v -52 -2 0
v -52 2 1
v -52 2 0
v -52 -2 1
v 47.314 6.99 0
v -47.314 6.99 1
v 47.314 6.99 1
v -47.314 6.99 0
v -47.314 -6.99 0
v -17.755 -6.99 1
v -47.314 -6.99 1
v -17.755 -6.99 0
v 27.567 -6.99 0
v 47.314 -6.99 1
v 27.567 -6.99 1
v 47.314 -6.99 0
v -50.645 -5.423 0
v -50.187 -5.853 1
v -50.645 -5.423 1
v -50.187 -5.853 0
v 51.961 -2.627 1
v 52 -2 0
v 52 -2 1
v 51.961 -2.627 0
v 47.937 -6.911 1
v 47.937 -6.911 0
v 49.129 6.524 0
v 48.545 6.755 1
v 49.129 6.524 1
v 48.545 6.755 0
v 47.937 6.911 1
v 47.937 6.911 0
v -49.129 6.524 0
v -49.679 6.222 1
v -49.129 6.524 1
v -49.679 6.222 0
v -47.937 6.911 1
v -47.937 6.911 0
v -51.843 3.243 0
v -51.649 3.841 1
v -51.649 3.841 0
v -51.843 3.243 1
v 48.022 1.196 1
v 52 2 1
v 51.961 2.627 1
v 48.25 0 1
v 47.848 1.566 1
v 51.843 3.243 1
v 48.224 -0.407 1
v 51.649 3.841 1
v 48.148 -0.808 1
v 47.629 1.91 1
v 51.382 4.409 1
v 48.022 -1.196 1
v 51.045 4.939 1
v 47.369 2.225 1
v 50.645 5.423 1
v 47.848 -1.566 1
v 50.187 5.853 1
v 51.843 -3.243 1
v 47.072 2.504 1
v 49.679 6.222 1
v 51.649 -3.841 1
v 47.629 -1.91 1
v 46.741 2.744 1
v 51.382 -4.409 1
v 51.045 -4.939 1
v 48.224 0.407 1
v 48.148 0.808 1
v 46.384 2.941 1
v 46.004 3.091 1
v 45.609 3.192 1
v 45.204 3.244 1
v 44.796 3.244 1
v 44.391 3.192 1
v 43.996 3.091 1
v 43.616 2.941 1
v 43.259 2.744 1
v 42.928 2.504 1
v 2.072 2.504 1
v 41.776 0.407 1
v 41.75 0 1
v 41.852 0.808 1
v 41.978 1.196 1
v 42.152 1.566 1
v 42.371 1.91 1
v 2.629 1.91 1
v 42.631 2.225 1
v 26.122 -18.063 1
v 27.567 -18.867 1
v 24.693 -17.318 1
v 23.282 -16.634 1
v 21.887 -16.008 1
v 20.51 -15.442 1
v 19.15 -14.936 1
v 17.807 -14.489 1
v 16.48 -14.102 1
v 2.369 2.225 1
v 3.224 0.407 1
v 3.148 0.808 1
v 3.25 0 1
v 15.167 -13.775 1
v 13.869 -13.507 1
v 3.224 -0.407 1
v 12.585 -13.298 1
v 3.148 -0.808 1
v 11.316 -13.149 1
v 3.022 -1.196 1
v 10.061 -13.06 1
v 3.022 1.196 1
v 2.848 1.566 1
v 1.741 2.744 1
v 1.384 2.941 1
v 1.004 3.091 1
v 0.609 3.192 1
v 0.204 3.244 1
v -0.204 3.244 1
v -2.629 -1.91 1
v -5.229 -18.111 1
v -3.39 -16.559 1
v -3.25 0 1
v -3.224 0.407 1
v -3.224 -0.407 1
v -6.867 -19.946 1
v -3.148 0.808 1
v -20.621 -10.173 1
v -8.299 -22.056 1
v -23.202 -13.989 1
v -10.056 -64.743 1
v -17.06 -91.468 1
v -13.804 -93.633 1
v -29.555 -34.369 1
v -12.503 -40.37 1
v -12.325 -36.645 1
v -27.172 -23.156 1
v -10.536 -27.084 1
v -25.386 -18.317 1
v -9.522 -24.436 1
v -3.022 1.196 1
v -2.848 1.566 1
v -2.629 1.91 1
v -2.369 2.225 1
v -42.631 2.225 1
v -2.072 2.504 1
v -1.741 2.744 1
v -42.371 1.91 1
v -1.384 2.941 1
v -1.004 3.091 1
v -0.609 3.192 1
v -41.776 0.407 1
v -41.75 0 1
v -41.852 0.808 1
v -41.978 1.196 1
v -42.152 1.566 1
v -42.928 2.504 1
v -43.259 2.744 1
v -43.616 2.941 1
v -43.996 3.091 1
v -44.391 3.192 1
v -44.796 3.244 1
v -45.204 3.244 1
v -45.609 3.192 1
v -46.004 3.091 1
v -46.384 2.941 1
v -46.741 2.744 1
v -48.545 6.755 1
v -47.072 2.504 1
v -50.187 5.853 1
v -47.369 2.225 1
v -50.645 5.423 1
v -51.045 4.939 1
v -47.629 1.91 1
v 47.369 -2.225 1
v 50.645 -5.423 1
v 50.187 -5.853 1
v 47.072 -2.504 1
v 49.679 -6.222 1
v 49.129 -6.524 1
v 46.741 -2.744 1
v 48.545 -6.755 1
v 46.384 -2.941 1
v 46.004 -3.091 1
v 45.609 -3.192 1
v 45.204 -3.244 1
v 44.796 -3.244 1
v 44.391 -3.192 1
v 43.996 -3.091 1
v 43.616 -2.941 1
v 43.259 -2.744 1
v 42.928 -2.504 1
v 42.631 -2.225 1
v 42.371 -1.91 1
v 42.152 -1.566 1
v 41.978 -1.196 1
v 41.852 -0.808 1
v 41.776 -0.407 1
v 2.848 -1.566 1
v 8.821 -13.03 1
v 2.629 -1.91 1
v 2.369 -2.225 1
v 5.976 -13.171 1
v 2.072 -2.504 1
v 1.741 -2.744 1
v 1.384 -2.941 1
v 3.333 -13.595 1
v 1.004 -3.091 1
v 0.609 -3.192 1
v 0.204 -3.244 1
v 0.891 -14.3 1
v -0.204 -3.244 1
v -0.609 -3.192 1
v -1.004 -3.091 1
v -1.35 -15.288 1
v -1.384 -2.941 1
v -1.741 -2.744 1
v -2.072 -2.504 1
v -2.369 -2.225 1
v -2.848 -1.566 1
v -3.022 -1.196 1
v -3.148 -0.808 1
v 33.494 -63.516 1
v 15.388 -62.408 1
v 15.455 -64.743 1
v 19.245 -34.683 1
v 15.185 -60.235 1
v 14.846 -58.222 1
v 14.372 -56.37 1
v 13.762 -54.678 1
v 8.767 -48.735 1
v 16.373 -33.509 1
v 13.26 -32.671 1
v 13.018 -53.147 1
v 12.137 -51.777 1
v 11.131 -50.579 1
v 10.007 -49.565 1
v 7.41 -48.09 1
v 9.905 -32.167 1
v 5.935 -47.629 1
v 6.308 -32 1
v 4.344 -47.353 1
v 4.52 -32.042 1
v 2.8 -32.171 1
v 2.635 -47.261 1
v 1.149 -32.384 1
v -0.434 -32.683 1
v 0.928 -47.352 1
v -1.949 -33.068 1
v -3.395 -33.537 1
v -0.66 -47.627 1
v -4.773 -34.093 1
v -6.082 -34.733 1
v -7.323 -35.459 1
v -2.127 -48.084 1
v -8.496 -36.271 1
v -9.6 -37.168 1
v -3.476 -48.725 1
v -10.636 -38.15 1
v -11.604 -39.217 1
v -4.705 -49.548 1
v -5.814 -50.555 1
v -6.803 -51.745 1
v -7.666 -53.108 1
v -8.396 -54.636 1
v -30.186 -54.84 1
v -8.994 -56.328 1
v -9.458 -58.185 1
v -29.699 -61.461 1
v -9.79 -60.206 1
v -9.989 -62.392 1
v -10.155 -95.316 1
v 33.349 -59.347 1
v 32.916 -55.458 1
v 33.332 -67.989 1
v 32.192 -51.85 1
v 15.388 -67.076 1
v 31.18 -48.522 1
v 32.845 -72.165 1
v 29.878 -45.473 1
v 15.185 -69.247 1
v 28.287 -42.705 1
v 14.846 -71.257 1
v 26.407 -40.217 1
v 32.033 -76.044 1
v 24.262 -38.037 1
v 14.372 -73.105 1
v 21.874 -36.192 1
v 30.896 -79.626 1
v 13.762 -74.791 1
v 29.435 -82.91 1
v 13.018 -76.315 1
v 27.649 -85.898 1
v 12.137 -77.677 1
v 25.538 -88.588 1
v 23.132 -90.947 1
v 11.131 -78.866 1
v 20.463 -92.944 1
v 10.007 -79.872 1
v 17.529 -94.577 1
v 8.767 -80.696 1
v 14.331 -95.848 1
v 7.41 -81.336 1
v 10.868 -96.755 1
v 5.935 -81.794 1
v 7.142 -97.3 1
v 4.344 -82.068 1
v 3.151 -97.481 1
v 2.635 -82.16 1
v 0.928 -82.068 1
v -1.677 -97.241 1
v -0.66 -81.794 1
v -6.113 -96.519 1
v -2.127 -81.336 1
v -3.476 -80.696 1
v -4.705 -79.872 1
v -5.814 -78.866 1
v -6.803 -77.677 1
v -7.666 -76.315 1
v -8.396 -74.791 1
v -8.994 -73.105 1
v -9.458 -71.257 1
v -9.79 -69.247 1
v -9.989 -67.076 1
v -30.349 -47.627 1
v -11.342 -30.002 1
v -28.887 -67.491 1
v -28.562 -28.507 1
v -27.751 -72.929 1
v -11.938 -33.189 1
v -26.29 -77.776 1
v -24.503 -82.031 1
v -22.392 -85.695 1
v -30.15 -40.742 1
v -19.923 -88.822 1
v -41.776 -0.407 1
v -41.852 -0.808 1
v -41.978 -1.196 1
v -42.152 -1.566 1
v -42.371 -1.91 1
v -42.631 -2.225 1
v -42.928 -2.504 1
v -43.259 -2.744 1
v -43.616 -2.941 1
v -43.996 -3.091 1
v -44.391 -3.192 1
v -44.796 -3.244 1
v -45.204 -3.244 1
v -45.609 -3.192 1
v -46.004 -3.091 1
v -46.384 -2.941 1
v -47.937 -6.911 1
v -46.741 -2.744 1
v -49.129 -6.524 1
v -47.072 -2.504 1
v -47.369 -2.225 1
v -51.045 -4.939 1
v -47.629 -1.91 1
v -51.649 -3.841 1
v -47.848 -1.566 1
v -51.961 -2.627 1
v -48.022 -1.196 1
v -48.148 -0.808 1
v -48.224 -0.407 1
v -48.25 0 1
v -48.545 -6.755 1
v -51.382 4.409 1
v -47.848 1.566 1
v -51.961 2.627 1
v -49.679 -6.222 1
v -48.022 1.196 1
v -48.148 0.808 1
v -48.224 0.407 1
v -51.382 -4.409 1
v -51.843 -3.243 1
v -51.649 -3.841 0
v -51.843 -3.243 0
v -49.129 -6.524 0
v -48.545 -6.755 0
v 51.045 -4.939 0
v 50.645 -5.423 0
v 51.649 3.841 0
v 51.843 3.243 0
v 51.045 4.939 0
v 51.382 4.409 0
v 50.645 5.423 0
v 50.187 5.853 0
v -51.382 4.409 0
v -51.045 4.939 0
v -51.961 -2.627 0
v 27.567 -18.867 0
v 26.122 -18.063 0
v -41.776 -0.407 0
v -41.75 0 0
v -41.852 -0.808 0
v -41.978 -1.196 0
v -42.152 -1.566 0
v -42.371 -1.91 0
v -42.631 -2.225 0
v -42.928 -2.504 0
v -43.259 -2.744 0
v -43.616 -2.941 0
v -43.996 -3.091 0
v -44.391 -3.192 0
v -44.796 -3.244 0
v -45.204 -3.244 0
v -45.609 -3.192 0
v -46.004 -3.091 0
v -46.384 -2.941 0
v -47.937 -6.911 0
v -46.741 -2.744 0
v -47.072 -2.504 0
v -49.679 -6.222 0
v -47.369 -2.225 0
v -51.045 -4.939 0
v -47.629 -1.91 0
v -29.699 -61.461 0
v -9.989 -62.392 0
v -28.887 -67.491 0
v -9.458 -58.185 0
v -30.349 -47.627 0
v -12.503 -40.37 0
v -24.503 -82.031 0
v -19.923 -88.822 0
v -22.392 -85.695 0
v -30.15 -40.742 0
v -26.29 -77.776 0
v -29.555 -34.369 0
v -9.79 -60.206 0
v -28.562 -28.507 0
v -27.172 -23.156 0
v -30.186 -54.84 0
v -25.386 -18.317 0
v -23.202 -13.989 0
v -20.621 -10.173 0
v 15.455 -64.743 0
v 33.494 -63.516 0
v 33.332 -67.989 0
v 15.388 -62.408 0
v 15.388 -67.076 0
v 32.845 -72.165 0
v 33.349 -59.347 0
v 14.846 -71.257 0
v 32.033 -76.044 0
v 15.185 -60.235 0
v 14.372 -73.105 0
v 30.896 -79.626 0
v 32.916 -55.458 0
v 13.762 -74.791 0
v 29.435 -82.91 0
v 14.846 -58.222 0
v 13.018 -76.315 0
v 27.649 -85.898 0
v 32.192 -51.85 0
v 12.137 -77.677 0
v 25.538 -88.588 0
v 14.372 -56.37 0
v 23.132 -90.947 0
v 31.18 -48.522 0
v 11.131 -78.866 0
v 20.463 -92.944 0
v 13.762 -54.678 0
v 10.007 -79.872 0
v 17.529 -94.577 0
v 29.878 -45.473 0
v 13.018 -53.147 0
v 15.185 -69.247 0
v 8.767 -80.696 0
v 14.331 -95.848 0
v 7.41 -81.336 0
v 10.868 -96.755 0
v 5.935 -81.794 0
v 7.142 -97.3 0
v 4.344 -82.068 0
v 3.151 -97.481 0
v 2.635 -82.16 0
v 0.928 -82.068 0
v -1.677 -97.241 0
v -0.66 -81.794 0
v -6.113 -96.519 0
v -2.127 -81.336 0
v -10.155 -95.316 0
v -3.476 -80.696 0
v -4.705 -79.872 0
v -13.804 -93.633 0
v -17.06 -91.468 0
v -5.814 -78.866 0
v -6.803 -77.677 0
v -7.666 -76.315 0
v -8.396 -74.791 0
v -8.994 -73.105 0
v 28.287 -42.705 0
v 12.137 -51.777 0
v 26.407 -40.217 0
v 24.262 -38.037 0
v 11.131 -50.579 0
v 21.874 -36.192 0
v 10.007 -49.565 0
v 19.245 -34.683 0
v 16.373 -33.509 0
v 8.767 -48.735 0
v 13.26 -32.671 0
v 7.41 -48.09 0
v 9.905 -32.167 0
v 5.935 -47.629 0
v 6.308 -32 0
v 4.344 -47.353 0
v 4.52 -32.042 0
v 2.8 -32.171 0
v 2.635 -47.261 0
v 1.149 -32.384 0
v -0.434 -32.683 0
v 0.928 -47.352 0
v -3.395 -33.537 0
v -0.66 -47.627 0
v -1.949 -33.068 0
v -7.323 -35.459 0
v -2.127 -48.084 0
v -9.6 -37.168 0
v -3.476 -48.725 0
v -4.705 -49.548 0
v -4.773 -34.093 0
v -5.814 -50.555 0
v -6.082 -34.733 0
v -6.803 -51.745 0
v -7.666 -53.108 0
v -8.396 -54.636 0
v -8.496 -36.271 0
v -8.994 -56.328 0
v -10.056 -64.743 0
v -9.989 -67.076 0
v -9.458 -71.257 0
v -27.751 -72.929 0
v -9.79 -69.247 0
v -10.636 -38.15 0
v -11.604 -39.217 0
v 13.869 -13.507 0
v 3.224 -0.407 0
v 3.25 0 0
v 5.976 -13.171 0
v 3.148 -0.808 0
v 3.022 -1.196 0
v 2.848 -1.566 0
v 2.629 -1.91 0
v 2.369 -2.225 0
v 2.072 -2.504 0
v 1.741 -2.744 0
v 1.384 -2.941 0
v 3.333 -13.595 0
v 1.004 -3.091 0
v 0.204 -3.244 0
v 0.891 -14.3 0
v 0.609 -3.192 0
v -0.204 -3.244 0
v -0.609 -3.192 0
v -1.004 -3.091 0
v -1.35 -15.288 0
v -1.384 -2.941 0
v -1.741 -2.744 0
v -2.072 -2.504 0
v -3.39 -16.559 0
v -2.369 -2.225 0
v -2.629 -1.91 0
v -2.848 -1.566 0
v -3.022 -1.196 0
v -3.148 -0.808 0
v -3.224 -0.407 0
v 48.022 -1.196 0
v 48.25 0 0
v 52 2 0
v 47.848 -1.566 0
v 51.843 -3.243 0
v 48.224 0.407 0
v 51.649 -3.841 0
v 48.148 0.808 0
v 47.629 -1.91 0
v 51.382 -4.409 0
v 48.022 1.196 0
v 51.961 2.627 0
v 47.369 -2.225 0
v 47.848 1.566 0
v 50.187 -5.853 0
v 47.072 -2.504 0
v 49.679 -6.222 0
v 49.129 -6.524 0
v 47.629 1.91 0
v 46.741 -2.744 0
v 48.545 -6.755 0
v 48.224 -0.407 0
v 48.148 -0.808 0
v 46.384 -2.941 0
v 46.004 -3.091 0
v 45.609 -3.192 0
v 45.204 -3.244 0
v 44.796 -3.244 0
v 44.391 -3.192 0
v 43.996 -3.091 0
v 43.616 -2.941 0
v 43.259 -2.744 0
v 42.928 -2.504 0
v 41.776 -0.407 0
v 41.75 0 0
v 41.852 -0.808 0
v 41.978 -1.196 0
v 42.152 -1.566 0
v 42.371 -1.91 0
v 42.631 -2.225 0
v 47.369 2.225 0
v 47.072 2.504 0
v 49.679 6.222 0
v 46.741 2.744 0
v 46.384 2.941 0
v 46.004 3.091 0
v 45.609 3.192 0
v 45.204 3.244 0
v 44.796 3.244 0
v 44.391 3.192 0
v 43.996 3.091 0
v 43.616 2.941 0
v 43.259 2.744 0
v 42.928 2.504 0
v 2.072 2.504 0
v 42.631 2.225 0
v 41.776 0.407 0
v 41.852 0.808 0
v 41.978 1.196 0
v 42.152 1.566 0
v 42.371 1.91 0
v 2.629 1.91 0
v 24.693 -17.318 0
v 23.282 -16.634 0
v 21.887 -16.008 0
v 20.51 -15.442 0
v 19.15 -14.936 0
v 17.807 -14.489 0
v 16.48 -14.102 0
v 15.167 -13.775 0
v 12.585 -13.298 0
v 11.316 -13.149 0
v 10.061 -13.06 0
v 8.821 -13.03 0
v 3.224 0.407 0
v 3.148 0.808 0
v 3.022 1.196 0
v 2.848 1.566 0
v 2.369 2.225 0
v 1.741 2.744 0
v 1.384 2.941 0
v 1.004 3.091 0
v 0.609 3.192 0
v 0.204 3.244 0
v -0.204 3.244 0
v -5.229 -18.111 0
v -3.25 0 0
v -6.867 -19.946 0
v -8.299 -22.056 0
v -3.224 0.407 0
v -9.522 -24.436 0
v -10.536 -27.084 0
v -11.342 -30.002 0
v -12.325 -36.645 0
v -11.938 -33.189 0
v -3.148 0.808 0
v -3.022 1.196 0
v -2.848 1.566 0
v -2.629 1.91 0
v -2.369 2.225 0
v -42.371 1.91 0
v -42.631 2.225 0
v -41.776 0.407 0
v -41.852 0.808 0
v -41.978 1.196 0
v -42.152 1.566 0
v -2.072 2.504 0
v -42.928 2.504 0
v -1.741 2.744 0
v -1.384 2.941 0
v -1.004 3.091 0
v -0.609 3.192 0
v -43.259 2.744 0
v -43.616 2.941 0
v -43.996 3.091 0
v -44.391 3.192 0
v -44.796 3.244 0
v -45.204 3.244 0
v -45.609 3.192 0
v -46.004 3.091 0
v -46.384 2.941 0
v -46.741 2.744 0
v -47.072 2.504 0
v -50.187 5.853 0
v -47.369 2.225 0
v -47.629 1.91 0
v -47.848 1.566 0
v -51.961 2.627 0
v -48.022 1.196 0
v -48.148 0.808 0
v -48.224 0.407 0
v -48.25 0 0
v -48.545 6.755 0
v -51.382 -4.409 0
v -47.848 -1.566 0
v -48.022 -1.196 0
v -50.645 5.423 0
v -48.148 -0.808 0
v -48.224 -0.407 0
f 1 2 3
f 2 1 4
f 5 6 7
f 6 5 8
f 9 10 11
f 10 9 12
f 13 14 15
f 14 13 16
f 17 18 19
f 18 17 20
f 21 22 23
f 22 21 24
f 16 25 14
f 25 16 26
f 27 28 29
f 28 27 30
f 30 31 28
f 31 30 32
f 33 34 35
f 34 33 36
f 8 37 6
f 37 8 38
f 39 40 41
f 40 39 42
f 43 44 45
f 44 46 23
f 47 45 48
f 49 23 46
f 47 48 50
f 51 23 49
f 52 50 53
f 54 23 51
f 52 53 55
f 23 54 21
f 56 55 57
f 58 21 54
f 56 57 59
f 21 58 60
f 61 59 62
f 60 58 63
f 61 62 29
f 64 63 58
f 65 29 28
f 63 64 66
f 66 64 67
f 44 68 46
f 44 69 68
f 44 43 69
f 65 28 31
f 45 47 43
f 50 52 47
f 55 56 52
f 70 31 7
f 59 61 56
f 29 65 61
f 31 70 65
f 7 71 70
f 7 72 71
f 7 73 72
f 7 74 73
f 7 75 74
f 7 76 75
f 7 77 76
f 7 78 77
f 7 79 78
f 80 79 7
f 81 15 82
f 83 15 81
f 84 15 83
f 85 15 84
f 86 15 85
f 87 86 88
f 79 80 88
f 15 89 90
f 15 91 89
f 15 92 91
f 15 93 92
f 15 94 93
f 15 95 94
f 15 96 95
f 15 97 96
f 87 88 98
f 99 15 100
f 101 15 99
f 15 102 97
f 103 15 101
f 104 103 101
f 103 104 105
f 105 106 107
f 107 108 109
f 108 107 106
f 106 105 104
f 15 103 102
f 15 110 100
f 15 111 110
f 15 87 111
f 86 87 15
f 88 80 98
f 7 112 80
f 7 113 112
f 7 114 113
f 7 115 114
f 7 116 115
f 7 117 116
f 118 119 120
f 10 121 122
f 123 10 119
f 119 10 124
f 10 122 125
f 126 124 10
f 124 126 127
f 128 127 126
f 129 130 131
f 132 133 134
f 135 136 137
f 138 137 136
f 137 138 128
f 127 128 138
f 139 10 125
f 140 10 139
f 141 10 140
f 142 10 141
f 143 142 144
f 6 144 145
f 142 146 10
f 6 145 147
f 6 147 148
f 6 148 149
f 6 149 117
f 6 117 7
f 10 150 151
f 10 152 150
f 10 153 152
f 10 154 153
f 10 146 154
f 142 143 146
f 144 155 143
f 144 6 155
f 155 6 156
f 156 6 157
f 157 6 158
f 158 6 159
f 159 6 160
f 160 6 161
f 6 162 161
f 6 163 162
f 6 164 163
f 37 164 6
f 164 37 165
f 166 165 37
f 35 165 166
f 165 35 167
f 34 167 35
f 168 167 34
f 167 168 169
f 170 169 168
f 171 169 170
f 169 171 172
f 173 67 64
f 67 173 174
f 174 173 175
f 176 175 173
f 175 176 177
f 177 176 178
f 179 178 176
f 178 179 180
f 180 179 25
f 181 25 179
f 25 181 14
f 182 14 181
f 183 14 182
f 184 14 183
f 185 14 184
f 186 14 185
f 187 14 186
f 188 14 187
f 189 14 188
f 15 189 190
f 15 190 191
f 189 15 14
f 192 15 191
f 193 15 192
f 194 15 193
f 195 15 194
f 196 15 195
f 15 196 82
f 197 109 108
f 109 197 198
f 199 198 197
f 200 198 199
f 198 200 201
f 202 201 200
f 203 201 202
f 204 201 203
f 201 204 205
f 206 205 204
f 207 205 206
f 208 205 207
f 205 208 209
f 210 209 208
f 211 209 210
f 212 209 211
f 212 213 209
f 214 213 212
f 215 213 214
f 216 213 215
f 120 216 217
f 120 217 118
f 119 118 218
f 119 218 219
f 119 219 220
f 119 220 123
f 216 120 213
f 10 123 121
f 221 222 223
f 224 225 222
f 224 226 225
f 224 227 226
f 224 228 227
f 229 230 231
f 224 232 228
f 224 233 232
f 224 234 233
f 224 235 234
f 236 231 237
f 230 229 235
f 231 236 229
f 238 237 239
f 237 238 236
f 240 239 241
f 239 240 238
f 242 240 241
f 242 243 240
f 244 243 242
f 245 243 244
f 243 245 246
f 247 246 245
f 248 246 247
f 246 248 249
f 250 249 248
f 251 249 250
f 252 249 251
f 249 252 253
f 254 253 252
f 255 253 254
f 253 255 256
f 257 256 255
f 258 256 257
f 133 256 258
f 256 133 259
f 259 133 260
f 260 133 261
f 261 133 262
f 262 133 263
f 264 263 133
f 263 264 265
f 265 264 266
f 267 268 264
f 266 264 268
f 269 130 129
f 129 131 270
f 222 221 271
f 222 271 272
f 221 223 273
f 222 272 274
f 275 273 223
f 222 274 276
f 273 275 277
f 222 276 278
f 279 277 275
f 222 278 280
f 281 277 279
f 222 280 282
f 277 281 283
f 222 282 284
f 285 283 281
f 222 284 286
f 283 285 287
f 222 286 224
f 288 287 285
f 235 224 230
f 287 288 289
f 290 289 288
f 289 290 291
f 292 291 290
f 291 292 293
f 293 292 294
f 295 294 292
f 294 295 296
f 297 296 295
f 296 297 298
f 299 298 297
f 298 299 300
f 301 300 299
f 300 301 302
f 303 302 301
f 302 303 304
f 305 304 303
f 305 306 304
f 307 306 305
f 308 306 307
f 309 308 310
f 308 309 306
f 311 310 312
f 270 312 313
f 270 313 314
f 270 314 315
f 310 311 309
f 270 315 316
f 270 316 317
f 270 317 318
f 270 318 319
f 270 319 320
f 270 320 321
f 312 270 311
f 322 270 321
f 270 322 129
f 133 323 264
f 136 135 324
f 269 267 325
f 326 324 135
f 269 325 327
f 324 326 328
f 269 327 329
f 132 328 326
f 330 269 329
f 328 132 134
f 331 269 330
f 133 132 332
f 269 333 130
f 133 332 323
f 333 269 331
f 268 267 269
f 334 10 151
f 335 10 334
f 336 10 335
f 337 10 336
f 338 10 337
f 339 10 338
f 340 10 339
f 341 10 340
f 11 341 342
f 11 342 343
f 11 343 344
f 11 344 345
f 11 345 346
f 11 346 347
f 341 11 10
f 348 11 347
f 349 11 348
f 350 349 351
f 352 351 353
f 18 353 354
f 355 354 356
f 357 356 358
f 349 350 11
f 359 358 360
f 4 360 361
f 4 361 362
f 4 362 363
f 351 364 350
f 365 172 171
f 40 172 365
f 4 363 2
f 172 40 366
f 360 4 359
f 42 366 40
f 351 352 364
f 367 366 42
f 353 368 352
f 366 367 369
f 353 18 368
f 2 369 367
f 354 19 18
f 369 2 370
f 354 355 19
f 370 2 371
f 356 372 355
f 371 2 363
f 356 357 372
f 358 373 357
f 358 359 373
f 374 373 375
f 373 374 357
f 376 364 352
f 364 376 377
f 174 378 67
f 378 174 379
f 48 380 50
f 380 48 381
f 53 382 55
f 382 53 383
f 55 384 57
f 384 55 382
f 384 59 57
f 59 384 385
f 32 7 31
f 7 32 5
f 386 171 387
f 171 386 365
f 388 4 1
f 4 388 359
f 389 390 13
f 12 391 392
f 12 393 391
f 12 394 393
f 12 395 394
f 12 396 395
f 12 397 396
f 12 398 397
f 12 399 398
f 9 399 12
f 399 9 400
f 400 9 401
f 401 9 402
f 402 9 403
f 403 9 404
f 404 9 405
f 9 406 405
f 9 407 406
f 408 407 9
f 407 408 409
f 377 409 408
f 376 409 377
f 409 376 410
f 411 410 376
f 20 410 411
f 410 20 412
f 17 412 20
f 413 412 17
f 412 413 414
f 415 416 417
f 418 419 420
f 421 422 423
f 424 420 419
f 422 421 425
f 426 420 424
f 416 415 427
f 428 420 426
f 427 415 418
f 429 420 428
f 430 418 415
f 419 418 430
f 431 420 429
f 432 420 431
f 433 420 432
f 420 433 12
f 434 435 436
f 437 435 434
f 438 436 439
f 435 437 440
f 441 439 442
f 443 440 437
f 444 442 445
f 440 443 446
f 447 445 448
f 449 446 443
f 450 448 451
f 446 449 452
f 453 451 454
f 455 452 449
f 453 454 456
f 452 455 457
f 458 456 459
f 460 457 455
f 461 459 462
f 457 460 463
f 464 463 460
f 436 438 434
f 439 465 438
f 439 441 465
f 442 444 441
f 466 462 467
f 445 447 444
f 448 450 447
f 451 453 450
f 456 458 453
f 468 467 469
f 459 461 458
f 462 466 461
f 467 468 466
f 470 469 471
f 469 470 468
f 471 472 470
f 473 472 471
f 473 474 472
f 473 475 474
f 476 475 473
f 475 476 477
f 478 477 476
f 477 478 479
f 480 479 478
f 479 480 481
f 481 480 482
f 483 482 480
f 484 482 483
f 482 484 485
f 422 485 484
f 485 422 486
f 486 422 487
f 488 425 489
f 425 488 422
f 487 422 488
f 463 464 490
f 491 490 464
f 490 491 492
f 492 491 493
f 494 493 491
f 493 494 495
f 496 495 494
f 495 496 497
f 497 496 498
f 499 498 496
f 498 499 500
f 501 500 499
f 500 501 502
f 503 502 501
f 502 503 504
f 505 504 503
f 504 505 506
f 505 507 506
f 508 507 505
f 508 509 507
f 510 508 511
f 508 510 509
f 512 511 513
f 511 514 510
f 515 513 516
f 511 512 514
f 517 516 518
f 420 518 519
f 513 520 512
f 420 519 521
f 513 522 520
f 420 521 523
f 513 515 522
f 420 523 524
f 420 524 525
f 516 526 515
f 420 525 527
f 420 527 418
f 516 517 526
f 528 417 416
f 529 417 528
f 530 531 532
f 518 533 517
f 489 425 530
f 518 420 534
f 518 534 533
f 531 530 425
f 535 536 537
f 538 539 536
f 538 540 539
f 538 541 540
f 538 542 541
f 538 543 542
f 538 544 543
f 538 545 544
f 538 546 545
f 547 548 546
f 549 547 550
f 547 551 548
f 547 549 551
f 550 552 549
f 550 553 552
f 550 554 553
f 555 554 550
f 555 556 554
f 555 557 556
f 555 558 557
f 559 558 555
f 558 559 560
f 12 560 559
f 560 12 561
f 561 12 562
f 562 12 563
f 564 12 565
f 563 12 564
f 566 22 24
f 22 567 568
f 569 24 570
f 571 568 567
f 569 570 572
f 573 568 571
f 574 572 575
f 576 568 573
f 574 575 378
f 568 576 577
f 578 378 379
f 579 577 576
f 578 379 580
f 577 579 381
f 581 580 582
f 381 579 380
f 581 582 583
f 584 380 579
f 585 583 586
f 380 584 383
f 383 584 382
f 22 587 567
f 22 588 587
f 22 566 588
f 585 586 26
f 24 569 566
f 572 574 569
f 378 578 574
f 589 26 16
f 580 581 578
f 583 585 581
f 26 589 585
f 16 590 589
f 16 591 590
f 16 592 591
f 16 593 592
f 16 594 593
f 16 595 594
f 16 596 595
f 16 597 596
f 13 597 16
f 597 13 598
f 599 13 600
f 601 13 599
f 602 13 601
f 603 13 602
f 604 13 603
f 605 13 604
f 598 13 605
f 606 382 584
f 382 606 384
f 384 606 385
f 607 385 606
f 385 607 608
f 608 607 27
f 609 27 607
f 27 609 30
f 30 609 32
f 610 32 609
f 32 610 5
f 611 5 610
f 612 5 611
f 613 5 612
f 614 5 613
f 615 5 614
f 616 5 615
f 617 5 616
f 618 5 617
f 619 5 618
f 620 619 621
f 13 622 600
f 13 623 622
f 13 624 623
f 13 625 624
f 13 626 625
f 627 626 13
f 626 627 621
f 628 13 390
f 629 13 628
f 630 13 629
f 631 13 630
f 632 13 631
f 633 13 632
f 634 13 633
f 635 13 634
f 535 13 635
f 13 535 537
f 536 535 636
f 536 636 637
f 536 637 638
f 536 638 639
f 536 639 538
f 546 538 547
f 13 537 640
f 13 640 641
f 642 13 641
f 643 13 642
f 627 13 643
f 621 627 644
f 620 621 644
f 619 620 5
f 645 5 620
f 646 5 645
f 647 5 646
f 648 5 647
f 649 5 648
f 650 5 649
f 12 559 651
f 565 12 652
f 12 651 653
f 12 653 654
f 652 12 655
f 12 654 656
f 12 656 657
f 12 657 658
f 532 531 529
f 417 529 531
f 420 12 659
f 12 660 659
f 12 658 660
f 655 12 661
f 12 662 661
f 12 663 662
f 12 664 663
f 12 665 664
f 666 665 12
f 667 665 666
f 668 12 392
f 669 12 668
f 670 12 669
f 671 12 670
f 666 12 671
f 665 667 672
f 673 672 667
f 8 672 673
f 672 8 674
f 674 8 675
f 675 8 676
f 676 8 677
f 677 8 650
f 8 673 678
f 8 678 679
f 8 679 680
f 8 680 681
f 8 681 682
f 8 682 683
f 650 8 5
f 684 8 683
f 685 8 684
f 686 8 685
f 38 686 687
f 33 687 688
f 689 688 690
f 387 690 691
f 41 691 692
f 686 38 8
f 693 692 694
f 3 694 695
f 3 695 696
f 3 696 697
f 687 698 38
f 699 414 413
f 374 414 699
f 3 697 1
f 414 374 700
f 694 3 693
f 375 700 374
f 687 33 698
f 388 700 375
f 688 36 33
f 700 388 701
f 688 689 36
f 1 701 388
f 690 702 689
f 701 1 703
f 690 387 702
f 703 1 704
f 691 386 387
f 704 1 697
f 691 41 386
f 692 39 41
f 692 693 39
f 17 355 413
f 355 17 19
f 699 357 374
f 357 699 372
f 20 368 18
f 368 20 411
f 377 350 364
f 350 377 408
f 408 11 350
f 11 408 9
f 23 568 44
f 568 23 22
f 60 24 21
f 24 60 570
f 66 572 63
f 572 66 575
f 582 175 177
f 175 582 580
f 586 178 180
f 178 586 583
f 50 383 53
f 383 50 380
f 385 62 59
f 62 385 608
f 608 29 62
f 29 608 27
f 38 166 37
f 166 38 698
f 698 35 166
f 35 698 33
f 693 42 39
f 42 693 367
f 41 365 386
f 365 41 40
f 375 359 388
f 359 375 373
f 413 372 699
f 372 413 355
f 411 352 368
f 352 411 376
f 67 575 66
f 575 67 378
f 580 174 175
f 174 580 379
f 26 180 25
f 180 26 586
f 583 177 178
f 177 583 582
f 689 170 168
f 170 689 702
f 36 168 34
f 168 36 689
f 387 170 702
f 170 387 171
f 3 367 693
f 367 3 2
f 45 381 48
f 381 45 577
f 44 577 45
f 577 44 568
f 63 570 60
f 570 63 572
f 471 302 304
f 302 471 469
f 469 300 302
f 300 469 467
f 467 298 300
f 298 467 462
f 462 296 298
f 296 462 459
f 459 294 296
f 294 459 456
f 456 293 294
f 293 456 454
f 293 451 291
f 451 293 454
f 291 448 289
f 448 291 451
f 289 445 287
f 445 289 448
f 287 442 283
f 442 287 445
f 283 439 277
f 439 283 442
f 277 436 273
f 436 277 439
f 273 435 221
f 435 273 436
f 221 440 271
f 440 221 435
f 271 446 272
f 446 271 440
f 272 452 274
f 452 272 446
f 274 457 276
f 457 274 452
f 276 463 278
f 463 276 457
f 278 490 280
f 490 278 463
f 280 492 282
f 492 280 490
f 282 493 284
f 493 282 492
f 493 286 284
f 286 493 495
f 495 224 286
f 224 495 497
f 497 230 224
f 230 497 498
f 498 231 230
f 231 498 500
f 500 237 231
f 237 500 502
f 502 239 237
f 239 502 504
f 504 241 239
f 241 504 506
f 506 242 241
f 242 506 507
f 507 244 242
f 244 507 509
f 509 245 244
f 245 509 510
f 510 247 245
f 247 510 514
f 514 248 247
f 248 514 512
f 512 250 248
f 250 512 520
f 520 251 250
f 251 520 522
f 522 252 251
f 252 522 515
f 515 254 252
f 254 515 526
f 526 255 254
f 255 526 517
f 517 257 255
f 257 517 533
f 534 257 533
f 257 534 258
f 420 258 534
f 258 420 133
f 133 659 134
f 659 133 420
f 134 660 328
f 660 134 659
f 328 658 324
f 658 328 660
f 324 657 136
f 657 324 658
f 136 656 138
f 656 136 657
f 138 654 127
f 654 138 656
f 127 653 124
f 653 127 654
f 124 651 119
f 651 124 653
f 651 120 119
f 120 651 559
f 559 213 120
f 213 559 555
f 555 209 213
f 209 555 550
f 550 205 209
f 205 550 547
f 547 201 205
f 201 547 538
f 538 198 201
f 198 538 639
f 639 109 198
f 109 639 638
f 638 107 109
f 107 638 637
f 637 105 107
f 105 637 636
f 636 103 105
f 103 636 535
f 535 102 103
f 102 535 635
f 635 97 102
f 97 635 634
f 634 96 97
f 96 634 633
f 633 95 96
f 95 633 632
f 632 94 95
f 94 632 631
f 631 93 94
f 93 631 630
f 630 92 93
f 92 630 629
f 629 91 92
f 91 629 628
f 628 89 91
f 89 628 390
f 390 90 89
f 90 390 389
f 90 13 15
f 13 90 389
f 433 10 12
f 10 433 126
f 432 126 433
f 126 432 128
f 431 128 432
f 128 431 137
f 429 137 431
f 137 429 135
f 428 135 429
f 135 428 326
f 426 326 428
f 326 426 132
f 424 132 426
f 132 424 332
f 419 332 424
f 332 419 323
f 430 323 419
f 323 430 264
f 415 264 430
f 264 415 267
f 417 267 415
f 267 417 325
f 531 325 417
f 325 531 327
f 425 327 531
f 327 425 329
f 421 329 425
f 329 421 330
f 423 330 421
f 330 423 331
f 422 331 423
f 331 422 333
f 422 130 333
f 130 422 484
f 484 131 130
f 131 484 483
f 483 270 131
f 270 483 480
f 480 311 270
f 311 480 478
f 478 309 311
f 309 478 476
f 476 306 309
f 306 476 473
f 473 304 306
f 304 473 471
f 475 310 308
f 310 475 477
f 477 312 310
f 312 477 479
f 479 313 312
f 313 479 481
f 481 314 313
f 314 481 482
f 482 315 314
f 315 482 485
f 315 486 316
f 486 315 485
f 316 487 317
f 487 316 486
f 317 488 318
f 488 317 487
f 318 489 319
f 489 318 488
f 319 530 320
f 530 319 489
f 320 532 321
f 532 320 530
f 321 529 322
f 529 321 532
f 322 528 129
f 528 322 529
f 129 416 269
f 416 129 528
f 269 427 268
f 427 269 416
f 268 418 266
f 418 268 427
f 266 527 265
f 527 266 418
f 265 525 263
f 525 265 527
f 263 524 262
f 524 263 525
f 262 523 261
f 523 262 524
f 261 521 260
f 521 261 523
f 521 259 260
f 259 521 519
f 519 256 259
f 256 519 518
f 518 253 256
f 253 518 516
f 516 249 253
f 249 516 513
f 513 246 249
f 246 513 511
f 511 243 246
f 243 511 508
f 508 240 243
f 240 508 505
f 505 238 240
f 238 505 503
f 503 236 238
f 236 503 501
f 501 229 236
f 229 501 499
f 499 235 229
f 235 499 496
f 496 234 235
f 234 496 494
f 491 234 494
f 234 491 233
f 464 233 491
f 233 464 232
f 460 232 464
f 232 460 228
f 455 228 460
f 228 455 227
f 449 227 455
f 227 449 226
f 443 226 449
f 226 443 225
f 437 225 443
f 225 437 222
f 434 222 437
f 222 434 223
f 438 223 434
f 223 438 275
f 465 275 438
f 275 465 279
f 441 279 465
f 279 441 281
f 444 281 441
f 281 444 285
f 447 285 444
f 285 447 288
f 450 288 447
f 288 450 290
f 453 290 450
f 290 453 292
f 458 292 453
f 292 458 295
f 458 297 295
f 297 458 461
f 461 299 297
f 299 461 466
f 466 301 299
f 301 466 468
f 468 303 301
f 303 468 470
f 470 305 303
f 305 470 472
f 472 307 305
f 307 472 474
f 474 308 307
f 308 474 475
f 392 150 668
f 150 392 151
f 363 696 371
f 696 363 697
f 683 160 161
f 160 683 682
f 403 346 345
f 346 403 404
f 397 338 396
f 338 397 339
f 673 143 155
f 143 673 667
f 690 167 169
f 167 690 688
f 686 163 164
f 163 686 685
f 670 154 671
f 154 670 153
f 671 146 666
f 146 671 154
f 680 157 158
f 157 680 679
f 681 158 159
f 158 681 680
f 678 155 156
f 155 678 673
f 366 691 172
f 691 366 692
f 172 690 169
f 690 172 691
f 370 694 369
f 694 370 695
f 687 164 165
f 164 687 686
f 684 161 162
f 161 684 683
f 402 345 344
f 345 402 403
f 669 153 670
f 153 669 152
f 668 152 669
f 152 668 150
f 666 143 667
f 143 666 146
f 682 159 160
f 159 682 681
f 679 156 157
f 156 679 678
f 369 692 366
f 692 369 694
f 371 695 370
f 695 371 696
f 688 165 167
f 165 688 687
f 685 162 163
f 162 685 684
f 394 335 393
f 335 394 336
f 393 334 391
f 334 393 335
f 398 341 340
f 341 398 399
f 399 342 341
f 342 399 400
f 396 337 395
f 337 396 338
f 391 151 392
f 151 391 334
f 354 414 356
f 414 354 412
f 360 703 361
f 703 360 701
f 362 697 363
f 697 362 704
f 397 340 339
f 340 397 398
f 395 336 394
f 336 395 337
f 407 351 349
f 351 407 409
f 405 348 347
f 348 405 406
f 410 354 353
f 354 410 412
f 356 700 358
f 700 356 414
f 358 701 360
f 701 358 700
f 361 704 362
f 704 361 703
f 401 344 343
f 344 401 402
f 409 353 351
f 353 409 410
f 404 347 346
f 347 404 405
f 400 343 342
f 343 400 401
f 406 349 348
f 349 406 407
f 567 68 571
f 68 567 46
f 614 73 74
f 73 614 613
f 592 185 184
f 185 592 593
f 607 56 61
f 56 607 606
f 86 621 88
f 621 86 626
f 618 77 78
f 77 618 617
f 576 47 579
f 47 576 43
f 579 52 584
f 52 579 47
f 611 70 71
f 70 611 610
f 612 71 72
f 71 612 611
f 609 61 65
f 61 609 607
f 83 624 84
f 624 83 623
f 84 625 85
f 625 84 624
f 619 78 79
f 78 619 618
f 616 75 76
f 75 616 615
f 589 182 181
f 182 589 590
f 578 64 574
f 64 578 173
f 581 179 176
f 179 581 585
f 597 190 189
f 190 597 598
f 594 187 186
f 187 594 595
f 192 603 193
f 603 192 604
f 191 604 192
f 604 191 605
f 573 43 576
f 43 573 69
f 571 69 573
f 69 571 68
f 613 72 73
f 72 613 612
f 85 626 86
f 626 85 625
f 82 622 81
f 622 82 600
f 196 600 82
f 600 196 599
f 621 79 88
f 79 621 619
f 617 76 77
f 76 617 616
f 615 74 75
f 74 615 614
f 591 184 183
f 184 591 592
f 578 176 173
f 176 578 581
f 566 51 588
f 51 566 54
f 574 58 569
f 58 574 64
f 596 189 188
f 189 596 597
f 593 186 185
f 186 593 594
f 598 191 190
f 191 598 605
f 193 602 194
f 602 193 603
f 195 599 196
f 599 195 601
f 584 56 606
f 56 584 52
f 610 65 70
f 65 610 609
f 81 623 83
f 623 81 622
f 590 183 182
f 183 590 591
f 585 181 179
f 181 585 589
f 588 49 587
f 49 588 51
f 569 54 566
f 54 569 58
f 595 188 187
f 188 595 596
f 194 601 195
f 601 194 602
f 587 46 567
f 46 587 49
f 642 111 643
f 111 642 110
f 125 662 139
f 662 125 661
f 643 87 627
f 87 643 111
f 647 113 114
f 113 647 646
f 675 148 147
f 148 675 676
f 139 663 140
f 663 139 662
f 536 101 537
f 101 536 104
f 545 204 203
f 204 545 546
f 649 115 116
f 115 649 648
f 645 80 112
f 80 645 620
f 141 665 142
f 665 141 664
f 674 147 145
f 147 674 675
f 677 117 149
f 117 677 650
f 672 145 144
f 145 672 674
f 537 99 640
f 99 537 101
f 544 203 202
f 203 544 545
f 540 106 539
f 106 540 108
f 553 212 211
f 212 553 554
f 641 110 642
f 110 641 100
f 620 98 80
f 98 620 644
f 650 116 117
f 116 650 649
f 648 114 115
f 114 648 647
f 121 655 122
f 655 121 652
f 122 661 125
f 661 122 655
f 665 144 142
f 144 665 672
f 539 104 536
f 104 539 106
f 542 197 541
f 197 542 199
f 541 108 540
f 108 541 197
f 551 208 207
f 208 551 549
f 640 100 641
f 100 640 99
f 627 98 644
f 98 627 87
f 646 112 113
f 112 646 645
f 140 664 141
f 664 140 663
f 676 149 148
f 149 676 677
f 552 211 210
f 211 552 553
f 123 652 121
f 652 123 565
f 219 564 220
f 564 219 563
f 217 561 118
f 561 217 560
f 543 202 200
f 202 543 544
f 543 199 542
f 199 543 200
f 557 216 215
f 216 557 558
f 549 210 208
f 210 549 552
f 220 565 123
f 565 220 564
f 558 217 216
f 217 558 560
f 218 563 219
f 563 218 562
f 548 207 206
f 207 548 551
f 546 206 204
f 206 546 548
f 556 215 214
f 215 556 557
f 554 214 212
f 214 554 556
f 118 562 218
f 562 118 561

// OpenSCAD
$fn = 50;


difference() {
	union() {
		translate(v = [0, 0, 0]) {
			rotate(a = [0, 0, 0]) {
				hull() {
					translate(v = [-47.0000000000, 2.0000000000, 0]) {
						rotate(a = [0, 0, 0]) {
							translate(v = [0, 0, 0]) {
								rotate(a = [0, 0, 0]) {
									cylinder(h = 1, r = 5);
								}
							}
						}
					}
					translate(v = [47.0000000000, 2.0000000000, 0]) {
						rotate(a = [0, 0, 0]) {
							translate(v = [0, 0, 0]) {
								rotate(a = [0, 0, 0]) {
									cylinder(h = 1, r = 5);
								}
							}
						}
					}
					translate(v = [-47.0000000000, -2.0000000000, 0]) {
						rotate(a = [0, 0, 0]) {
							translate(v = [0, 0, 0]) {
								rotate(a = [0, 0, 0]) {
									cylinder(h = 1, r = 5);
								}
							}
						}
					}
					translate(v = [47.0000000000, -2.0000000000, 0]) {
						rotate(a = [0, 0, 0]) {
							translate(v = [0, 0, 0]) {
								rotate(a = [0, 0, 0]) {
									cylinder(h = 1, r = 5);
								}
							}
						}
					}
				}
			}
		}
		translate(v = [0, 0, 0]) {
			rotate(a = [0, 0, 0]) {
				linear_extrude(height = 1) {
					text(font = "DejaVu Sans Mono:style=Bold", halign = "center", size = 95, text = "6", valign = "top");
				}
			}
		}
	}
	union() {
		translate(v = [-45.0000000000, 0.0000000000, -125.0000000000]) {
			rotate(a = [0, 0, 0]) {
				cylinder(h = 250, r = 3.2500000000);
			}
		}
		translate(v = [45.0000000000, 0.0000000000, -125.0000000000]) {
			rotate(a = [0, 0, 0]) {
				cylinder(h = 250, r = 3.2500000000);
			}
		}
		translate(v = [45.0000000000, 0.0000000000, -125.0000000000]) {
			rotate(a = [0, 0, 0]) {
				cylinder(h = 250, r = 3.2500000000);
			}
		}
		translate(v = [0, 0, -125.0000000000]) {
			rotate(a = [0, 0, 0]) {
				cylinder(h = 250, r = 3.2500000000);
			}
		}
	}
}
